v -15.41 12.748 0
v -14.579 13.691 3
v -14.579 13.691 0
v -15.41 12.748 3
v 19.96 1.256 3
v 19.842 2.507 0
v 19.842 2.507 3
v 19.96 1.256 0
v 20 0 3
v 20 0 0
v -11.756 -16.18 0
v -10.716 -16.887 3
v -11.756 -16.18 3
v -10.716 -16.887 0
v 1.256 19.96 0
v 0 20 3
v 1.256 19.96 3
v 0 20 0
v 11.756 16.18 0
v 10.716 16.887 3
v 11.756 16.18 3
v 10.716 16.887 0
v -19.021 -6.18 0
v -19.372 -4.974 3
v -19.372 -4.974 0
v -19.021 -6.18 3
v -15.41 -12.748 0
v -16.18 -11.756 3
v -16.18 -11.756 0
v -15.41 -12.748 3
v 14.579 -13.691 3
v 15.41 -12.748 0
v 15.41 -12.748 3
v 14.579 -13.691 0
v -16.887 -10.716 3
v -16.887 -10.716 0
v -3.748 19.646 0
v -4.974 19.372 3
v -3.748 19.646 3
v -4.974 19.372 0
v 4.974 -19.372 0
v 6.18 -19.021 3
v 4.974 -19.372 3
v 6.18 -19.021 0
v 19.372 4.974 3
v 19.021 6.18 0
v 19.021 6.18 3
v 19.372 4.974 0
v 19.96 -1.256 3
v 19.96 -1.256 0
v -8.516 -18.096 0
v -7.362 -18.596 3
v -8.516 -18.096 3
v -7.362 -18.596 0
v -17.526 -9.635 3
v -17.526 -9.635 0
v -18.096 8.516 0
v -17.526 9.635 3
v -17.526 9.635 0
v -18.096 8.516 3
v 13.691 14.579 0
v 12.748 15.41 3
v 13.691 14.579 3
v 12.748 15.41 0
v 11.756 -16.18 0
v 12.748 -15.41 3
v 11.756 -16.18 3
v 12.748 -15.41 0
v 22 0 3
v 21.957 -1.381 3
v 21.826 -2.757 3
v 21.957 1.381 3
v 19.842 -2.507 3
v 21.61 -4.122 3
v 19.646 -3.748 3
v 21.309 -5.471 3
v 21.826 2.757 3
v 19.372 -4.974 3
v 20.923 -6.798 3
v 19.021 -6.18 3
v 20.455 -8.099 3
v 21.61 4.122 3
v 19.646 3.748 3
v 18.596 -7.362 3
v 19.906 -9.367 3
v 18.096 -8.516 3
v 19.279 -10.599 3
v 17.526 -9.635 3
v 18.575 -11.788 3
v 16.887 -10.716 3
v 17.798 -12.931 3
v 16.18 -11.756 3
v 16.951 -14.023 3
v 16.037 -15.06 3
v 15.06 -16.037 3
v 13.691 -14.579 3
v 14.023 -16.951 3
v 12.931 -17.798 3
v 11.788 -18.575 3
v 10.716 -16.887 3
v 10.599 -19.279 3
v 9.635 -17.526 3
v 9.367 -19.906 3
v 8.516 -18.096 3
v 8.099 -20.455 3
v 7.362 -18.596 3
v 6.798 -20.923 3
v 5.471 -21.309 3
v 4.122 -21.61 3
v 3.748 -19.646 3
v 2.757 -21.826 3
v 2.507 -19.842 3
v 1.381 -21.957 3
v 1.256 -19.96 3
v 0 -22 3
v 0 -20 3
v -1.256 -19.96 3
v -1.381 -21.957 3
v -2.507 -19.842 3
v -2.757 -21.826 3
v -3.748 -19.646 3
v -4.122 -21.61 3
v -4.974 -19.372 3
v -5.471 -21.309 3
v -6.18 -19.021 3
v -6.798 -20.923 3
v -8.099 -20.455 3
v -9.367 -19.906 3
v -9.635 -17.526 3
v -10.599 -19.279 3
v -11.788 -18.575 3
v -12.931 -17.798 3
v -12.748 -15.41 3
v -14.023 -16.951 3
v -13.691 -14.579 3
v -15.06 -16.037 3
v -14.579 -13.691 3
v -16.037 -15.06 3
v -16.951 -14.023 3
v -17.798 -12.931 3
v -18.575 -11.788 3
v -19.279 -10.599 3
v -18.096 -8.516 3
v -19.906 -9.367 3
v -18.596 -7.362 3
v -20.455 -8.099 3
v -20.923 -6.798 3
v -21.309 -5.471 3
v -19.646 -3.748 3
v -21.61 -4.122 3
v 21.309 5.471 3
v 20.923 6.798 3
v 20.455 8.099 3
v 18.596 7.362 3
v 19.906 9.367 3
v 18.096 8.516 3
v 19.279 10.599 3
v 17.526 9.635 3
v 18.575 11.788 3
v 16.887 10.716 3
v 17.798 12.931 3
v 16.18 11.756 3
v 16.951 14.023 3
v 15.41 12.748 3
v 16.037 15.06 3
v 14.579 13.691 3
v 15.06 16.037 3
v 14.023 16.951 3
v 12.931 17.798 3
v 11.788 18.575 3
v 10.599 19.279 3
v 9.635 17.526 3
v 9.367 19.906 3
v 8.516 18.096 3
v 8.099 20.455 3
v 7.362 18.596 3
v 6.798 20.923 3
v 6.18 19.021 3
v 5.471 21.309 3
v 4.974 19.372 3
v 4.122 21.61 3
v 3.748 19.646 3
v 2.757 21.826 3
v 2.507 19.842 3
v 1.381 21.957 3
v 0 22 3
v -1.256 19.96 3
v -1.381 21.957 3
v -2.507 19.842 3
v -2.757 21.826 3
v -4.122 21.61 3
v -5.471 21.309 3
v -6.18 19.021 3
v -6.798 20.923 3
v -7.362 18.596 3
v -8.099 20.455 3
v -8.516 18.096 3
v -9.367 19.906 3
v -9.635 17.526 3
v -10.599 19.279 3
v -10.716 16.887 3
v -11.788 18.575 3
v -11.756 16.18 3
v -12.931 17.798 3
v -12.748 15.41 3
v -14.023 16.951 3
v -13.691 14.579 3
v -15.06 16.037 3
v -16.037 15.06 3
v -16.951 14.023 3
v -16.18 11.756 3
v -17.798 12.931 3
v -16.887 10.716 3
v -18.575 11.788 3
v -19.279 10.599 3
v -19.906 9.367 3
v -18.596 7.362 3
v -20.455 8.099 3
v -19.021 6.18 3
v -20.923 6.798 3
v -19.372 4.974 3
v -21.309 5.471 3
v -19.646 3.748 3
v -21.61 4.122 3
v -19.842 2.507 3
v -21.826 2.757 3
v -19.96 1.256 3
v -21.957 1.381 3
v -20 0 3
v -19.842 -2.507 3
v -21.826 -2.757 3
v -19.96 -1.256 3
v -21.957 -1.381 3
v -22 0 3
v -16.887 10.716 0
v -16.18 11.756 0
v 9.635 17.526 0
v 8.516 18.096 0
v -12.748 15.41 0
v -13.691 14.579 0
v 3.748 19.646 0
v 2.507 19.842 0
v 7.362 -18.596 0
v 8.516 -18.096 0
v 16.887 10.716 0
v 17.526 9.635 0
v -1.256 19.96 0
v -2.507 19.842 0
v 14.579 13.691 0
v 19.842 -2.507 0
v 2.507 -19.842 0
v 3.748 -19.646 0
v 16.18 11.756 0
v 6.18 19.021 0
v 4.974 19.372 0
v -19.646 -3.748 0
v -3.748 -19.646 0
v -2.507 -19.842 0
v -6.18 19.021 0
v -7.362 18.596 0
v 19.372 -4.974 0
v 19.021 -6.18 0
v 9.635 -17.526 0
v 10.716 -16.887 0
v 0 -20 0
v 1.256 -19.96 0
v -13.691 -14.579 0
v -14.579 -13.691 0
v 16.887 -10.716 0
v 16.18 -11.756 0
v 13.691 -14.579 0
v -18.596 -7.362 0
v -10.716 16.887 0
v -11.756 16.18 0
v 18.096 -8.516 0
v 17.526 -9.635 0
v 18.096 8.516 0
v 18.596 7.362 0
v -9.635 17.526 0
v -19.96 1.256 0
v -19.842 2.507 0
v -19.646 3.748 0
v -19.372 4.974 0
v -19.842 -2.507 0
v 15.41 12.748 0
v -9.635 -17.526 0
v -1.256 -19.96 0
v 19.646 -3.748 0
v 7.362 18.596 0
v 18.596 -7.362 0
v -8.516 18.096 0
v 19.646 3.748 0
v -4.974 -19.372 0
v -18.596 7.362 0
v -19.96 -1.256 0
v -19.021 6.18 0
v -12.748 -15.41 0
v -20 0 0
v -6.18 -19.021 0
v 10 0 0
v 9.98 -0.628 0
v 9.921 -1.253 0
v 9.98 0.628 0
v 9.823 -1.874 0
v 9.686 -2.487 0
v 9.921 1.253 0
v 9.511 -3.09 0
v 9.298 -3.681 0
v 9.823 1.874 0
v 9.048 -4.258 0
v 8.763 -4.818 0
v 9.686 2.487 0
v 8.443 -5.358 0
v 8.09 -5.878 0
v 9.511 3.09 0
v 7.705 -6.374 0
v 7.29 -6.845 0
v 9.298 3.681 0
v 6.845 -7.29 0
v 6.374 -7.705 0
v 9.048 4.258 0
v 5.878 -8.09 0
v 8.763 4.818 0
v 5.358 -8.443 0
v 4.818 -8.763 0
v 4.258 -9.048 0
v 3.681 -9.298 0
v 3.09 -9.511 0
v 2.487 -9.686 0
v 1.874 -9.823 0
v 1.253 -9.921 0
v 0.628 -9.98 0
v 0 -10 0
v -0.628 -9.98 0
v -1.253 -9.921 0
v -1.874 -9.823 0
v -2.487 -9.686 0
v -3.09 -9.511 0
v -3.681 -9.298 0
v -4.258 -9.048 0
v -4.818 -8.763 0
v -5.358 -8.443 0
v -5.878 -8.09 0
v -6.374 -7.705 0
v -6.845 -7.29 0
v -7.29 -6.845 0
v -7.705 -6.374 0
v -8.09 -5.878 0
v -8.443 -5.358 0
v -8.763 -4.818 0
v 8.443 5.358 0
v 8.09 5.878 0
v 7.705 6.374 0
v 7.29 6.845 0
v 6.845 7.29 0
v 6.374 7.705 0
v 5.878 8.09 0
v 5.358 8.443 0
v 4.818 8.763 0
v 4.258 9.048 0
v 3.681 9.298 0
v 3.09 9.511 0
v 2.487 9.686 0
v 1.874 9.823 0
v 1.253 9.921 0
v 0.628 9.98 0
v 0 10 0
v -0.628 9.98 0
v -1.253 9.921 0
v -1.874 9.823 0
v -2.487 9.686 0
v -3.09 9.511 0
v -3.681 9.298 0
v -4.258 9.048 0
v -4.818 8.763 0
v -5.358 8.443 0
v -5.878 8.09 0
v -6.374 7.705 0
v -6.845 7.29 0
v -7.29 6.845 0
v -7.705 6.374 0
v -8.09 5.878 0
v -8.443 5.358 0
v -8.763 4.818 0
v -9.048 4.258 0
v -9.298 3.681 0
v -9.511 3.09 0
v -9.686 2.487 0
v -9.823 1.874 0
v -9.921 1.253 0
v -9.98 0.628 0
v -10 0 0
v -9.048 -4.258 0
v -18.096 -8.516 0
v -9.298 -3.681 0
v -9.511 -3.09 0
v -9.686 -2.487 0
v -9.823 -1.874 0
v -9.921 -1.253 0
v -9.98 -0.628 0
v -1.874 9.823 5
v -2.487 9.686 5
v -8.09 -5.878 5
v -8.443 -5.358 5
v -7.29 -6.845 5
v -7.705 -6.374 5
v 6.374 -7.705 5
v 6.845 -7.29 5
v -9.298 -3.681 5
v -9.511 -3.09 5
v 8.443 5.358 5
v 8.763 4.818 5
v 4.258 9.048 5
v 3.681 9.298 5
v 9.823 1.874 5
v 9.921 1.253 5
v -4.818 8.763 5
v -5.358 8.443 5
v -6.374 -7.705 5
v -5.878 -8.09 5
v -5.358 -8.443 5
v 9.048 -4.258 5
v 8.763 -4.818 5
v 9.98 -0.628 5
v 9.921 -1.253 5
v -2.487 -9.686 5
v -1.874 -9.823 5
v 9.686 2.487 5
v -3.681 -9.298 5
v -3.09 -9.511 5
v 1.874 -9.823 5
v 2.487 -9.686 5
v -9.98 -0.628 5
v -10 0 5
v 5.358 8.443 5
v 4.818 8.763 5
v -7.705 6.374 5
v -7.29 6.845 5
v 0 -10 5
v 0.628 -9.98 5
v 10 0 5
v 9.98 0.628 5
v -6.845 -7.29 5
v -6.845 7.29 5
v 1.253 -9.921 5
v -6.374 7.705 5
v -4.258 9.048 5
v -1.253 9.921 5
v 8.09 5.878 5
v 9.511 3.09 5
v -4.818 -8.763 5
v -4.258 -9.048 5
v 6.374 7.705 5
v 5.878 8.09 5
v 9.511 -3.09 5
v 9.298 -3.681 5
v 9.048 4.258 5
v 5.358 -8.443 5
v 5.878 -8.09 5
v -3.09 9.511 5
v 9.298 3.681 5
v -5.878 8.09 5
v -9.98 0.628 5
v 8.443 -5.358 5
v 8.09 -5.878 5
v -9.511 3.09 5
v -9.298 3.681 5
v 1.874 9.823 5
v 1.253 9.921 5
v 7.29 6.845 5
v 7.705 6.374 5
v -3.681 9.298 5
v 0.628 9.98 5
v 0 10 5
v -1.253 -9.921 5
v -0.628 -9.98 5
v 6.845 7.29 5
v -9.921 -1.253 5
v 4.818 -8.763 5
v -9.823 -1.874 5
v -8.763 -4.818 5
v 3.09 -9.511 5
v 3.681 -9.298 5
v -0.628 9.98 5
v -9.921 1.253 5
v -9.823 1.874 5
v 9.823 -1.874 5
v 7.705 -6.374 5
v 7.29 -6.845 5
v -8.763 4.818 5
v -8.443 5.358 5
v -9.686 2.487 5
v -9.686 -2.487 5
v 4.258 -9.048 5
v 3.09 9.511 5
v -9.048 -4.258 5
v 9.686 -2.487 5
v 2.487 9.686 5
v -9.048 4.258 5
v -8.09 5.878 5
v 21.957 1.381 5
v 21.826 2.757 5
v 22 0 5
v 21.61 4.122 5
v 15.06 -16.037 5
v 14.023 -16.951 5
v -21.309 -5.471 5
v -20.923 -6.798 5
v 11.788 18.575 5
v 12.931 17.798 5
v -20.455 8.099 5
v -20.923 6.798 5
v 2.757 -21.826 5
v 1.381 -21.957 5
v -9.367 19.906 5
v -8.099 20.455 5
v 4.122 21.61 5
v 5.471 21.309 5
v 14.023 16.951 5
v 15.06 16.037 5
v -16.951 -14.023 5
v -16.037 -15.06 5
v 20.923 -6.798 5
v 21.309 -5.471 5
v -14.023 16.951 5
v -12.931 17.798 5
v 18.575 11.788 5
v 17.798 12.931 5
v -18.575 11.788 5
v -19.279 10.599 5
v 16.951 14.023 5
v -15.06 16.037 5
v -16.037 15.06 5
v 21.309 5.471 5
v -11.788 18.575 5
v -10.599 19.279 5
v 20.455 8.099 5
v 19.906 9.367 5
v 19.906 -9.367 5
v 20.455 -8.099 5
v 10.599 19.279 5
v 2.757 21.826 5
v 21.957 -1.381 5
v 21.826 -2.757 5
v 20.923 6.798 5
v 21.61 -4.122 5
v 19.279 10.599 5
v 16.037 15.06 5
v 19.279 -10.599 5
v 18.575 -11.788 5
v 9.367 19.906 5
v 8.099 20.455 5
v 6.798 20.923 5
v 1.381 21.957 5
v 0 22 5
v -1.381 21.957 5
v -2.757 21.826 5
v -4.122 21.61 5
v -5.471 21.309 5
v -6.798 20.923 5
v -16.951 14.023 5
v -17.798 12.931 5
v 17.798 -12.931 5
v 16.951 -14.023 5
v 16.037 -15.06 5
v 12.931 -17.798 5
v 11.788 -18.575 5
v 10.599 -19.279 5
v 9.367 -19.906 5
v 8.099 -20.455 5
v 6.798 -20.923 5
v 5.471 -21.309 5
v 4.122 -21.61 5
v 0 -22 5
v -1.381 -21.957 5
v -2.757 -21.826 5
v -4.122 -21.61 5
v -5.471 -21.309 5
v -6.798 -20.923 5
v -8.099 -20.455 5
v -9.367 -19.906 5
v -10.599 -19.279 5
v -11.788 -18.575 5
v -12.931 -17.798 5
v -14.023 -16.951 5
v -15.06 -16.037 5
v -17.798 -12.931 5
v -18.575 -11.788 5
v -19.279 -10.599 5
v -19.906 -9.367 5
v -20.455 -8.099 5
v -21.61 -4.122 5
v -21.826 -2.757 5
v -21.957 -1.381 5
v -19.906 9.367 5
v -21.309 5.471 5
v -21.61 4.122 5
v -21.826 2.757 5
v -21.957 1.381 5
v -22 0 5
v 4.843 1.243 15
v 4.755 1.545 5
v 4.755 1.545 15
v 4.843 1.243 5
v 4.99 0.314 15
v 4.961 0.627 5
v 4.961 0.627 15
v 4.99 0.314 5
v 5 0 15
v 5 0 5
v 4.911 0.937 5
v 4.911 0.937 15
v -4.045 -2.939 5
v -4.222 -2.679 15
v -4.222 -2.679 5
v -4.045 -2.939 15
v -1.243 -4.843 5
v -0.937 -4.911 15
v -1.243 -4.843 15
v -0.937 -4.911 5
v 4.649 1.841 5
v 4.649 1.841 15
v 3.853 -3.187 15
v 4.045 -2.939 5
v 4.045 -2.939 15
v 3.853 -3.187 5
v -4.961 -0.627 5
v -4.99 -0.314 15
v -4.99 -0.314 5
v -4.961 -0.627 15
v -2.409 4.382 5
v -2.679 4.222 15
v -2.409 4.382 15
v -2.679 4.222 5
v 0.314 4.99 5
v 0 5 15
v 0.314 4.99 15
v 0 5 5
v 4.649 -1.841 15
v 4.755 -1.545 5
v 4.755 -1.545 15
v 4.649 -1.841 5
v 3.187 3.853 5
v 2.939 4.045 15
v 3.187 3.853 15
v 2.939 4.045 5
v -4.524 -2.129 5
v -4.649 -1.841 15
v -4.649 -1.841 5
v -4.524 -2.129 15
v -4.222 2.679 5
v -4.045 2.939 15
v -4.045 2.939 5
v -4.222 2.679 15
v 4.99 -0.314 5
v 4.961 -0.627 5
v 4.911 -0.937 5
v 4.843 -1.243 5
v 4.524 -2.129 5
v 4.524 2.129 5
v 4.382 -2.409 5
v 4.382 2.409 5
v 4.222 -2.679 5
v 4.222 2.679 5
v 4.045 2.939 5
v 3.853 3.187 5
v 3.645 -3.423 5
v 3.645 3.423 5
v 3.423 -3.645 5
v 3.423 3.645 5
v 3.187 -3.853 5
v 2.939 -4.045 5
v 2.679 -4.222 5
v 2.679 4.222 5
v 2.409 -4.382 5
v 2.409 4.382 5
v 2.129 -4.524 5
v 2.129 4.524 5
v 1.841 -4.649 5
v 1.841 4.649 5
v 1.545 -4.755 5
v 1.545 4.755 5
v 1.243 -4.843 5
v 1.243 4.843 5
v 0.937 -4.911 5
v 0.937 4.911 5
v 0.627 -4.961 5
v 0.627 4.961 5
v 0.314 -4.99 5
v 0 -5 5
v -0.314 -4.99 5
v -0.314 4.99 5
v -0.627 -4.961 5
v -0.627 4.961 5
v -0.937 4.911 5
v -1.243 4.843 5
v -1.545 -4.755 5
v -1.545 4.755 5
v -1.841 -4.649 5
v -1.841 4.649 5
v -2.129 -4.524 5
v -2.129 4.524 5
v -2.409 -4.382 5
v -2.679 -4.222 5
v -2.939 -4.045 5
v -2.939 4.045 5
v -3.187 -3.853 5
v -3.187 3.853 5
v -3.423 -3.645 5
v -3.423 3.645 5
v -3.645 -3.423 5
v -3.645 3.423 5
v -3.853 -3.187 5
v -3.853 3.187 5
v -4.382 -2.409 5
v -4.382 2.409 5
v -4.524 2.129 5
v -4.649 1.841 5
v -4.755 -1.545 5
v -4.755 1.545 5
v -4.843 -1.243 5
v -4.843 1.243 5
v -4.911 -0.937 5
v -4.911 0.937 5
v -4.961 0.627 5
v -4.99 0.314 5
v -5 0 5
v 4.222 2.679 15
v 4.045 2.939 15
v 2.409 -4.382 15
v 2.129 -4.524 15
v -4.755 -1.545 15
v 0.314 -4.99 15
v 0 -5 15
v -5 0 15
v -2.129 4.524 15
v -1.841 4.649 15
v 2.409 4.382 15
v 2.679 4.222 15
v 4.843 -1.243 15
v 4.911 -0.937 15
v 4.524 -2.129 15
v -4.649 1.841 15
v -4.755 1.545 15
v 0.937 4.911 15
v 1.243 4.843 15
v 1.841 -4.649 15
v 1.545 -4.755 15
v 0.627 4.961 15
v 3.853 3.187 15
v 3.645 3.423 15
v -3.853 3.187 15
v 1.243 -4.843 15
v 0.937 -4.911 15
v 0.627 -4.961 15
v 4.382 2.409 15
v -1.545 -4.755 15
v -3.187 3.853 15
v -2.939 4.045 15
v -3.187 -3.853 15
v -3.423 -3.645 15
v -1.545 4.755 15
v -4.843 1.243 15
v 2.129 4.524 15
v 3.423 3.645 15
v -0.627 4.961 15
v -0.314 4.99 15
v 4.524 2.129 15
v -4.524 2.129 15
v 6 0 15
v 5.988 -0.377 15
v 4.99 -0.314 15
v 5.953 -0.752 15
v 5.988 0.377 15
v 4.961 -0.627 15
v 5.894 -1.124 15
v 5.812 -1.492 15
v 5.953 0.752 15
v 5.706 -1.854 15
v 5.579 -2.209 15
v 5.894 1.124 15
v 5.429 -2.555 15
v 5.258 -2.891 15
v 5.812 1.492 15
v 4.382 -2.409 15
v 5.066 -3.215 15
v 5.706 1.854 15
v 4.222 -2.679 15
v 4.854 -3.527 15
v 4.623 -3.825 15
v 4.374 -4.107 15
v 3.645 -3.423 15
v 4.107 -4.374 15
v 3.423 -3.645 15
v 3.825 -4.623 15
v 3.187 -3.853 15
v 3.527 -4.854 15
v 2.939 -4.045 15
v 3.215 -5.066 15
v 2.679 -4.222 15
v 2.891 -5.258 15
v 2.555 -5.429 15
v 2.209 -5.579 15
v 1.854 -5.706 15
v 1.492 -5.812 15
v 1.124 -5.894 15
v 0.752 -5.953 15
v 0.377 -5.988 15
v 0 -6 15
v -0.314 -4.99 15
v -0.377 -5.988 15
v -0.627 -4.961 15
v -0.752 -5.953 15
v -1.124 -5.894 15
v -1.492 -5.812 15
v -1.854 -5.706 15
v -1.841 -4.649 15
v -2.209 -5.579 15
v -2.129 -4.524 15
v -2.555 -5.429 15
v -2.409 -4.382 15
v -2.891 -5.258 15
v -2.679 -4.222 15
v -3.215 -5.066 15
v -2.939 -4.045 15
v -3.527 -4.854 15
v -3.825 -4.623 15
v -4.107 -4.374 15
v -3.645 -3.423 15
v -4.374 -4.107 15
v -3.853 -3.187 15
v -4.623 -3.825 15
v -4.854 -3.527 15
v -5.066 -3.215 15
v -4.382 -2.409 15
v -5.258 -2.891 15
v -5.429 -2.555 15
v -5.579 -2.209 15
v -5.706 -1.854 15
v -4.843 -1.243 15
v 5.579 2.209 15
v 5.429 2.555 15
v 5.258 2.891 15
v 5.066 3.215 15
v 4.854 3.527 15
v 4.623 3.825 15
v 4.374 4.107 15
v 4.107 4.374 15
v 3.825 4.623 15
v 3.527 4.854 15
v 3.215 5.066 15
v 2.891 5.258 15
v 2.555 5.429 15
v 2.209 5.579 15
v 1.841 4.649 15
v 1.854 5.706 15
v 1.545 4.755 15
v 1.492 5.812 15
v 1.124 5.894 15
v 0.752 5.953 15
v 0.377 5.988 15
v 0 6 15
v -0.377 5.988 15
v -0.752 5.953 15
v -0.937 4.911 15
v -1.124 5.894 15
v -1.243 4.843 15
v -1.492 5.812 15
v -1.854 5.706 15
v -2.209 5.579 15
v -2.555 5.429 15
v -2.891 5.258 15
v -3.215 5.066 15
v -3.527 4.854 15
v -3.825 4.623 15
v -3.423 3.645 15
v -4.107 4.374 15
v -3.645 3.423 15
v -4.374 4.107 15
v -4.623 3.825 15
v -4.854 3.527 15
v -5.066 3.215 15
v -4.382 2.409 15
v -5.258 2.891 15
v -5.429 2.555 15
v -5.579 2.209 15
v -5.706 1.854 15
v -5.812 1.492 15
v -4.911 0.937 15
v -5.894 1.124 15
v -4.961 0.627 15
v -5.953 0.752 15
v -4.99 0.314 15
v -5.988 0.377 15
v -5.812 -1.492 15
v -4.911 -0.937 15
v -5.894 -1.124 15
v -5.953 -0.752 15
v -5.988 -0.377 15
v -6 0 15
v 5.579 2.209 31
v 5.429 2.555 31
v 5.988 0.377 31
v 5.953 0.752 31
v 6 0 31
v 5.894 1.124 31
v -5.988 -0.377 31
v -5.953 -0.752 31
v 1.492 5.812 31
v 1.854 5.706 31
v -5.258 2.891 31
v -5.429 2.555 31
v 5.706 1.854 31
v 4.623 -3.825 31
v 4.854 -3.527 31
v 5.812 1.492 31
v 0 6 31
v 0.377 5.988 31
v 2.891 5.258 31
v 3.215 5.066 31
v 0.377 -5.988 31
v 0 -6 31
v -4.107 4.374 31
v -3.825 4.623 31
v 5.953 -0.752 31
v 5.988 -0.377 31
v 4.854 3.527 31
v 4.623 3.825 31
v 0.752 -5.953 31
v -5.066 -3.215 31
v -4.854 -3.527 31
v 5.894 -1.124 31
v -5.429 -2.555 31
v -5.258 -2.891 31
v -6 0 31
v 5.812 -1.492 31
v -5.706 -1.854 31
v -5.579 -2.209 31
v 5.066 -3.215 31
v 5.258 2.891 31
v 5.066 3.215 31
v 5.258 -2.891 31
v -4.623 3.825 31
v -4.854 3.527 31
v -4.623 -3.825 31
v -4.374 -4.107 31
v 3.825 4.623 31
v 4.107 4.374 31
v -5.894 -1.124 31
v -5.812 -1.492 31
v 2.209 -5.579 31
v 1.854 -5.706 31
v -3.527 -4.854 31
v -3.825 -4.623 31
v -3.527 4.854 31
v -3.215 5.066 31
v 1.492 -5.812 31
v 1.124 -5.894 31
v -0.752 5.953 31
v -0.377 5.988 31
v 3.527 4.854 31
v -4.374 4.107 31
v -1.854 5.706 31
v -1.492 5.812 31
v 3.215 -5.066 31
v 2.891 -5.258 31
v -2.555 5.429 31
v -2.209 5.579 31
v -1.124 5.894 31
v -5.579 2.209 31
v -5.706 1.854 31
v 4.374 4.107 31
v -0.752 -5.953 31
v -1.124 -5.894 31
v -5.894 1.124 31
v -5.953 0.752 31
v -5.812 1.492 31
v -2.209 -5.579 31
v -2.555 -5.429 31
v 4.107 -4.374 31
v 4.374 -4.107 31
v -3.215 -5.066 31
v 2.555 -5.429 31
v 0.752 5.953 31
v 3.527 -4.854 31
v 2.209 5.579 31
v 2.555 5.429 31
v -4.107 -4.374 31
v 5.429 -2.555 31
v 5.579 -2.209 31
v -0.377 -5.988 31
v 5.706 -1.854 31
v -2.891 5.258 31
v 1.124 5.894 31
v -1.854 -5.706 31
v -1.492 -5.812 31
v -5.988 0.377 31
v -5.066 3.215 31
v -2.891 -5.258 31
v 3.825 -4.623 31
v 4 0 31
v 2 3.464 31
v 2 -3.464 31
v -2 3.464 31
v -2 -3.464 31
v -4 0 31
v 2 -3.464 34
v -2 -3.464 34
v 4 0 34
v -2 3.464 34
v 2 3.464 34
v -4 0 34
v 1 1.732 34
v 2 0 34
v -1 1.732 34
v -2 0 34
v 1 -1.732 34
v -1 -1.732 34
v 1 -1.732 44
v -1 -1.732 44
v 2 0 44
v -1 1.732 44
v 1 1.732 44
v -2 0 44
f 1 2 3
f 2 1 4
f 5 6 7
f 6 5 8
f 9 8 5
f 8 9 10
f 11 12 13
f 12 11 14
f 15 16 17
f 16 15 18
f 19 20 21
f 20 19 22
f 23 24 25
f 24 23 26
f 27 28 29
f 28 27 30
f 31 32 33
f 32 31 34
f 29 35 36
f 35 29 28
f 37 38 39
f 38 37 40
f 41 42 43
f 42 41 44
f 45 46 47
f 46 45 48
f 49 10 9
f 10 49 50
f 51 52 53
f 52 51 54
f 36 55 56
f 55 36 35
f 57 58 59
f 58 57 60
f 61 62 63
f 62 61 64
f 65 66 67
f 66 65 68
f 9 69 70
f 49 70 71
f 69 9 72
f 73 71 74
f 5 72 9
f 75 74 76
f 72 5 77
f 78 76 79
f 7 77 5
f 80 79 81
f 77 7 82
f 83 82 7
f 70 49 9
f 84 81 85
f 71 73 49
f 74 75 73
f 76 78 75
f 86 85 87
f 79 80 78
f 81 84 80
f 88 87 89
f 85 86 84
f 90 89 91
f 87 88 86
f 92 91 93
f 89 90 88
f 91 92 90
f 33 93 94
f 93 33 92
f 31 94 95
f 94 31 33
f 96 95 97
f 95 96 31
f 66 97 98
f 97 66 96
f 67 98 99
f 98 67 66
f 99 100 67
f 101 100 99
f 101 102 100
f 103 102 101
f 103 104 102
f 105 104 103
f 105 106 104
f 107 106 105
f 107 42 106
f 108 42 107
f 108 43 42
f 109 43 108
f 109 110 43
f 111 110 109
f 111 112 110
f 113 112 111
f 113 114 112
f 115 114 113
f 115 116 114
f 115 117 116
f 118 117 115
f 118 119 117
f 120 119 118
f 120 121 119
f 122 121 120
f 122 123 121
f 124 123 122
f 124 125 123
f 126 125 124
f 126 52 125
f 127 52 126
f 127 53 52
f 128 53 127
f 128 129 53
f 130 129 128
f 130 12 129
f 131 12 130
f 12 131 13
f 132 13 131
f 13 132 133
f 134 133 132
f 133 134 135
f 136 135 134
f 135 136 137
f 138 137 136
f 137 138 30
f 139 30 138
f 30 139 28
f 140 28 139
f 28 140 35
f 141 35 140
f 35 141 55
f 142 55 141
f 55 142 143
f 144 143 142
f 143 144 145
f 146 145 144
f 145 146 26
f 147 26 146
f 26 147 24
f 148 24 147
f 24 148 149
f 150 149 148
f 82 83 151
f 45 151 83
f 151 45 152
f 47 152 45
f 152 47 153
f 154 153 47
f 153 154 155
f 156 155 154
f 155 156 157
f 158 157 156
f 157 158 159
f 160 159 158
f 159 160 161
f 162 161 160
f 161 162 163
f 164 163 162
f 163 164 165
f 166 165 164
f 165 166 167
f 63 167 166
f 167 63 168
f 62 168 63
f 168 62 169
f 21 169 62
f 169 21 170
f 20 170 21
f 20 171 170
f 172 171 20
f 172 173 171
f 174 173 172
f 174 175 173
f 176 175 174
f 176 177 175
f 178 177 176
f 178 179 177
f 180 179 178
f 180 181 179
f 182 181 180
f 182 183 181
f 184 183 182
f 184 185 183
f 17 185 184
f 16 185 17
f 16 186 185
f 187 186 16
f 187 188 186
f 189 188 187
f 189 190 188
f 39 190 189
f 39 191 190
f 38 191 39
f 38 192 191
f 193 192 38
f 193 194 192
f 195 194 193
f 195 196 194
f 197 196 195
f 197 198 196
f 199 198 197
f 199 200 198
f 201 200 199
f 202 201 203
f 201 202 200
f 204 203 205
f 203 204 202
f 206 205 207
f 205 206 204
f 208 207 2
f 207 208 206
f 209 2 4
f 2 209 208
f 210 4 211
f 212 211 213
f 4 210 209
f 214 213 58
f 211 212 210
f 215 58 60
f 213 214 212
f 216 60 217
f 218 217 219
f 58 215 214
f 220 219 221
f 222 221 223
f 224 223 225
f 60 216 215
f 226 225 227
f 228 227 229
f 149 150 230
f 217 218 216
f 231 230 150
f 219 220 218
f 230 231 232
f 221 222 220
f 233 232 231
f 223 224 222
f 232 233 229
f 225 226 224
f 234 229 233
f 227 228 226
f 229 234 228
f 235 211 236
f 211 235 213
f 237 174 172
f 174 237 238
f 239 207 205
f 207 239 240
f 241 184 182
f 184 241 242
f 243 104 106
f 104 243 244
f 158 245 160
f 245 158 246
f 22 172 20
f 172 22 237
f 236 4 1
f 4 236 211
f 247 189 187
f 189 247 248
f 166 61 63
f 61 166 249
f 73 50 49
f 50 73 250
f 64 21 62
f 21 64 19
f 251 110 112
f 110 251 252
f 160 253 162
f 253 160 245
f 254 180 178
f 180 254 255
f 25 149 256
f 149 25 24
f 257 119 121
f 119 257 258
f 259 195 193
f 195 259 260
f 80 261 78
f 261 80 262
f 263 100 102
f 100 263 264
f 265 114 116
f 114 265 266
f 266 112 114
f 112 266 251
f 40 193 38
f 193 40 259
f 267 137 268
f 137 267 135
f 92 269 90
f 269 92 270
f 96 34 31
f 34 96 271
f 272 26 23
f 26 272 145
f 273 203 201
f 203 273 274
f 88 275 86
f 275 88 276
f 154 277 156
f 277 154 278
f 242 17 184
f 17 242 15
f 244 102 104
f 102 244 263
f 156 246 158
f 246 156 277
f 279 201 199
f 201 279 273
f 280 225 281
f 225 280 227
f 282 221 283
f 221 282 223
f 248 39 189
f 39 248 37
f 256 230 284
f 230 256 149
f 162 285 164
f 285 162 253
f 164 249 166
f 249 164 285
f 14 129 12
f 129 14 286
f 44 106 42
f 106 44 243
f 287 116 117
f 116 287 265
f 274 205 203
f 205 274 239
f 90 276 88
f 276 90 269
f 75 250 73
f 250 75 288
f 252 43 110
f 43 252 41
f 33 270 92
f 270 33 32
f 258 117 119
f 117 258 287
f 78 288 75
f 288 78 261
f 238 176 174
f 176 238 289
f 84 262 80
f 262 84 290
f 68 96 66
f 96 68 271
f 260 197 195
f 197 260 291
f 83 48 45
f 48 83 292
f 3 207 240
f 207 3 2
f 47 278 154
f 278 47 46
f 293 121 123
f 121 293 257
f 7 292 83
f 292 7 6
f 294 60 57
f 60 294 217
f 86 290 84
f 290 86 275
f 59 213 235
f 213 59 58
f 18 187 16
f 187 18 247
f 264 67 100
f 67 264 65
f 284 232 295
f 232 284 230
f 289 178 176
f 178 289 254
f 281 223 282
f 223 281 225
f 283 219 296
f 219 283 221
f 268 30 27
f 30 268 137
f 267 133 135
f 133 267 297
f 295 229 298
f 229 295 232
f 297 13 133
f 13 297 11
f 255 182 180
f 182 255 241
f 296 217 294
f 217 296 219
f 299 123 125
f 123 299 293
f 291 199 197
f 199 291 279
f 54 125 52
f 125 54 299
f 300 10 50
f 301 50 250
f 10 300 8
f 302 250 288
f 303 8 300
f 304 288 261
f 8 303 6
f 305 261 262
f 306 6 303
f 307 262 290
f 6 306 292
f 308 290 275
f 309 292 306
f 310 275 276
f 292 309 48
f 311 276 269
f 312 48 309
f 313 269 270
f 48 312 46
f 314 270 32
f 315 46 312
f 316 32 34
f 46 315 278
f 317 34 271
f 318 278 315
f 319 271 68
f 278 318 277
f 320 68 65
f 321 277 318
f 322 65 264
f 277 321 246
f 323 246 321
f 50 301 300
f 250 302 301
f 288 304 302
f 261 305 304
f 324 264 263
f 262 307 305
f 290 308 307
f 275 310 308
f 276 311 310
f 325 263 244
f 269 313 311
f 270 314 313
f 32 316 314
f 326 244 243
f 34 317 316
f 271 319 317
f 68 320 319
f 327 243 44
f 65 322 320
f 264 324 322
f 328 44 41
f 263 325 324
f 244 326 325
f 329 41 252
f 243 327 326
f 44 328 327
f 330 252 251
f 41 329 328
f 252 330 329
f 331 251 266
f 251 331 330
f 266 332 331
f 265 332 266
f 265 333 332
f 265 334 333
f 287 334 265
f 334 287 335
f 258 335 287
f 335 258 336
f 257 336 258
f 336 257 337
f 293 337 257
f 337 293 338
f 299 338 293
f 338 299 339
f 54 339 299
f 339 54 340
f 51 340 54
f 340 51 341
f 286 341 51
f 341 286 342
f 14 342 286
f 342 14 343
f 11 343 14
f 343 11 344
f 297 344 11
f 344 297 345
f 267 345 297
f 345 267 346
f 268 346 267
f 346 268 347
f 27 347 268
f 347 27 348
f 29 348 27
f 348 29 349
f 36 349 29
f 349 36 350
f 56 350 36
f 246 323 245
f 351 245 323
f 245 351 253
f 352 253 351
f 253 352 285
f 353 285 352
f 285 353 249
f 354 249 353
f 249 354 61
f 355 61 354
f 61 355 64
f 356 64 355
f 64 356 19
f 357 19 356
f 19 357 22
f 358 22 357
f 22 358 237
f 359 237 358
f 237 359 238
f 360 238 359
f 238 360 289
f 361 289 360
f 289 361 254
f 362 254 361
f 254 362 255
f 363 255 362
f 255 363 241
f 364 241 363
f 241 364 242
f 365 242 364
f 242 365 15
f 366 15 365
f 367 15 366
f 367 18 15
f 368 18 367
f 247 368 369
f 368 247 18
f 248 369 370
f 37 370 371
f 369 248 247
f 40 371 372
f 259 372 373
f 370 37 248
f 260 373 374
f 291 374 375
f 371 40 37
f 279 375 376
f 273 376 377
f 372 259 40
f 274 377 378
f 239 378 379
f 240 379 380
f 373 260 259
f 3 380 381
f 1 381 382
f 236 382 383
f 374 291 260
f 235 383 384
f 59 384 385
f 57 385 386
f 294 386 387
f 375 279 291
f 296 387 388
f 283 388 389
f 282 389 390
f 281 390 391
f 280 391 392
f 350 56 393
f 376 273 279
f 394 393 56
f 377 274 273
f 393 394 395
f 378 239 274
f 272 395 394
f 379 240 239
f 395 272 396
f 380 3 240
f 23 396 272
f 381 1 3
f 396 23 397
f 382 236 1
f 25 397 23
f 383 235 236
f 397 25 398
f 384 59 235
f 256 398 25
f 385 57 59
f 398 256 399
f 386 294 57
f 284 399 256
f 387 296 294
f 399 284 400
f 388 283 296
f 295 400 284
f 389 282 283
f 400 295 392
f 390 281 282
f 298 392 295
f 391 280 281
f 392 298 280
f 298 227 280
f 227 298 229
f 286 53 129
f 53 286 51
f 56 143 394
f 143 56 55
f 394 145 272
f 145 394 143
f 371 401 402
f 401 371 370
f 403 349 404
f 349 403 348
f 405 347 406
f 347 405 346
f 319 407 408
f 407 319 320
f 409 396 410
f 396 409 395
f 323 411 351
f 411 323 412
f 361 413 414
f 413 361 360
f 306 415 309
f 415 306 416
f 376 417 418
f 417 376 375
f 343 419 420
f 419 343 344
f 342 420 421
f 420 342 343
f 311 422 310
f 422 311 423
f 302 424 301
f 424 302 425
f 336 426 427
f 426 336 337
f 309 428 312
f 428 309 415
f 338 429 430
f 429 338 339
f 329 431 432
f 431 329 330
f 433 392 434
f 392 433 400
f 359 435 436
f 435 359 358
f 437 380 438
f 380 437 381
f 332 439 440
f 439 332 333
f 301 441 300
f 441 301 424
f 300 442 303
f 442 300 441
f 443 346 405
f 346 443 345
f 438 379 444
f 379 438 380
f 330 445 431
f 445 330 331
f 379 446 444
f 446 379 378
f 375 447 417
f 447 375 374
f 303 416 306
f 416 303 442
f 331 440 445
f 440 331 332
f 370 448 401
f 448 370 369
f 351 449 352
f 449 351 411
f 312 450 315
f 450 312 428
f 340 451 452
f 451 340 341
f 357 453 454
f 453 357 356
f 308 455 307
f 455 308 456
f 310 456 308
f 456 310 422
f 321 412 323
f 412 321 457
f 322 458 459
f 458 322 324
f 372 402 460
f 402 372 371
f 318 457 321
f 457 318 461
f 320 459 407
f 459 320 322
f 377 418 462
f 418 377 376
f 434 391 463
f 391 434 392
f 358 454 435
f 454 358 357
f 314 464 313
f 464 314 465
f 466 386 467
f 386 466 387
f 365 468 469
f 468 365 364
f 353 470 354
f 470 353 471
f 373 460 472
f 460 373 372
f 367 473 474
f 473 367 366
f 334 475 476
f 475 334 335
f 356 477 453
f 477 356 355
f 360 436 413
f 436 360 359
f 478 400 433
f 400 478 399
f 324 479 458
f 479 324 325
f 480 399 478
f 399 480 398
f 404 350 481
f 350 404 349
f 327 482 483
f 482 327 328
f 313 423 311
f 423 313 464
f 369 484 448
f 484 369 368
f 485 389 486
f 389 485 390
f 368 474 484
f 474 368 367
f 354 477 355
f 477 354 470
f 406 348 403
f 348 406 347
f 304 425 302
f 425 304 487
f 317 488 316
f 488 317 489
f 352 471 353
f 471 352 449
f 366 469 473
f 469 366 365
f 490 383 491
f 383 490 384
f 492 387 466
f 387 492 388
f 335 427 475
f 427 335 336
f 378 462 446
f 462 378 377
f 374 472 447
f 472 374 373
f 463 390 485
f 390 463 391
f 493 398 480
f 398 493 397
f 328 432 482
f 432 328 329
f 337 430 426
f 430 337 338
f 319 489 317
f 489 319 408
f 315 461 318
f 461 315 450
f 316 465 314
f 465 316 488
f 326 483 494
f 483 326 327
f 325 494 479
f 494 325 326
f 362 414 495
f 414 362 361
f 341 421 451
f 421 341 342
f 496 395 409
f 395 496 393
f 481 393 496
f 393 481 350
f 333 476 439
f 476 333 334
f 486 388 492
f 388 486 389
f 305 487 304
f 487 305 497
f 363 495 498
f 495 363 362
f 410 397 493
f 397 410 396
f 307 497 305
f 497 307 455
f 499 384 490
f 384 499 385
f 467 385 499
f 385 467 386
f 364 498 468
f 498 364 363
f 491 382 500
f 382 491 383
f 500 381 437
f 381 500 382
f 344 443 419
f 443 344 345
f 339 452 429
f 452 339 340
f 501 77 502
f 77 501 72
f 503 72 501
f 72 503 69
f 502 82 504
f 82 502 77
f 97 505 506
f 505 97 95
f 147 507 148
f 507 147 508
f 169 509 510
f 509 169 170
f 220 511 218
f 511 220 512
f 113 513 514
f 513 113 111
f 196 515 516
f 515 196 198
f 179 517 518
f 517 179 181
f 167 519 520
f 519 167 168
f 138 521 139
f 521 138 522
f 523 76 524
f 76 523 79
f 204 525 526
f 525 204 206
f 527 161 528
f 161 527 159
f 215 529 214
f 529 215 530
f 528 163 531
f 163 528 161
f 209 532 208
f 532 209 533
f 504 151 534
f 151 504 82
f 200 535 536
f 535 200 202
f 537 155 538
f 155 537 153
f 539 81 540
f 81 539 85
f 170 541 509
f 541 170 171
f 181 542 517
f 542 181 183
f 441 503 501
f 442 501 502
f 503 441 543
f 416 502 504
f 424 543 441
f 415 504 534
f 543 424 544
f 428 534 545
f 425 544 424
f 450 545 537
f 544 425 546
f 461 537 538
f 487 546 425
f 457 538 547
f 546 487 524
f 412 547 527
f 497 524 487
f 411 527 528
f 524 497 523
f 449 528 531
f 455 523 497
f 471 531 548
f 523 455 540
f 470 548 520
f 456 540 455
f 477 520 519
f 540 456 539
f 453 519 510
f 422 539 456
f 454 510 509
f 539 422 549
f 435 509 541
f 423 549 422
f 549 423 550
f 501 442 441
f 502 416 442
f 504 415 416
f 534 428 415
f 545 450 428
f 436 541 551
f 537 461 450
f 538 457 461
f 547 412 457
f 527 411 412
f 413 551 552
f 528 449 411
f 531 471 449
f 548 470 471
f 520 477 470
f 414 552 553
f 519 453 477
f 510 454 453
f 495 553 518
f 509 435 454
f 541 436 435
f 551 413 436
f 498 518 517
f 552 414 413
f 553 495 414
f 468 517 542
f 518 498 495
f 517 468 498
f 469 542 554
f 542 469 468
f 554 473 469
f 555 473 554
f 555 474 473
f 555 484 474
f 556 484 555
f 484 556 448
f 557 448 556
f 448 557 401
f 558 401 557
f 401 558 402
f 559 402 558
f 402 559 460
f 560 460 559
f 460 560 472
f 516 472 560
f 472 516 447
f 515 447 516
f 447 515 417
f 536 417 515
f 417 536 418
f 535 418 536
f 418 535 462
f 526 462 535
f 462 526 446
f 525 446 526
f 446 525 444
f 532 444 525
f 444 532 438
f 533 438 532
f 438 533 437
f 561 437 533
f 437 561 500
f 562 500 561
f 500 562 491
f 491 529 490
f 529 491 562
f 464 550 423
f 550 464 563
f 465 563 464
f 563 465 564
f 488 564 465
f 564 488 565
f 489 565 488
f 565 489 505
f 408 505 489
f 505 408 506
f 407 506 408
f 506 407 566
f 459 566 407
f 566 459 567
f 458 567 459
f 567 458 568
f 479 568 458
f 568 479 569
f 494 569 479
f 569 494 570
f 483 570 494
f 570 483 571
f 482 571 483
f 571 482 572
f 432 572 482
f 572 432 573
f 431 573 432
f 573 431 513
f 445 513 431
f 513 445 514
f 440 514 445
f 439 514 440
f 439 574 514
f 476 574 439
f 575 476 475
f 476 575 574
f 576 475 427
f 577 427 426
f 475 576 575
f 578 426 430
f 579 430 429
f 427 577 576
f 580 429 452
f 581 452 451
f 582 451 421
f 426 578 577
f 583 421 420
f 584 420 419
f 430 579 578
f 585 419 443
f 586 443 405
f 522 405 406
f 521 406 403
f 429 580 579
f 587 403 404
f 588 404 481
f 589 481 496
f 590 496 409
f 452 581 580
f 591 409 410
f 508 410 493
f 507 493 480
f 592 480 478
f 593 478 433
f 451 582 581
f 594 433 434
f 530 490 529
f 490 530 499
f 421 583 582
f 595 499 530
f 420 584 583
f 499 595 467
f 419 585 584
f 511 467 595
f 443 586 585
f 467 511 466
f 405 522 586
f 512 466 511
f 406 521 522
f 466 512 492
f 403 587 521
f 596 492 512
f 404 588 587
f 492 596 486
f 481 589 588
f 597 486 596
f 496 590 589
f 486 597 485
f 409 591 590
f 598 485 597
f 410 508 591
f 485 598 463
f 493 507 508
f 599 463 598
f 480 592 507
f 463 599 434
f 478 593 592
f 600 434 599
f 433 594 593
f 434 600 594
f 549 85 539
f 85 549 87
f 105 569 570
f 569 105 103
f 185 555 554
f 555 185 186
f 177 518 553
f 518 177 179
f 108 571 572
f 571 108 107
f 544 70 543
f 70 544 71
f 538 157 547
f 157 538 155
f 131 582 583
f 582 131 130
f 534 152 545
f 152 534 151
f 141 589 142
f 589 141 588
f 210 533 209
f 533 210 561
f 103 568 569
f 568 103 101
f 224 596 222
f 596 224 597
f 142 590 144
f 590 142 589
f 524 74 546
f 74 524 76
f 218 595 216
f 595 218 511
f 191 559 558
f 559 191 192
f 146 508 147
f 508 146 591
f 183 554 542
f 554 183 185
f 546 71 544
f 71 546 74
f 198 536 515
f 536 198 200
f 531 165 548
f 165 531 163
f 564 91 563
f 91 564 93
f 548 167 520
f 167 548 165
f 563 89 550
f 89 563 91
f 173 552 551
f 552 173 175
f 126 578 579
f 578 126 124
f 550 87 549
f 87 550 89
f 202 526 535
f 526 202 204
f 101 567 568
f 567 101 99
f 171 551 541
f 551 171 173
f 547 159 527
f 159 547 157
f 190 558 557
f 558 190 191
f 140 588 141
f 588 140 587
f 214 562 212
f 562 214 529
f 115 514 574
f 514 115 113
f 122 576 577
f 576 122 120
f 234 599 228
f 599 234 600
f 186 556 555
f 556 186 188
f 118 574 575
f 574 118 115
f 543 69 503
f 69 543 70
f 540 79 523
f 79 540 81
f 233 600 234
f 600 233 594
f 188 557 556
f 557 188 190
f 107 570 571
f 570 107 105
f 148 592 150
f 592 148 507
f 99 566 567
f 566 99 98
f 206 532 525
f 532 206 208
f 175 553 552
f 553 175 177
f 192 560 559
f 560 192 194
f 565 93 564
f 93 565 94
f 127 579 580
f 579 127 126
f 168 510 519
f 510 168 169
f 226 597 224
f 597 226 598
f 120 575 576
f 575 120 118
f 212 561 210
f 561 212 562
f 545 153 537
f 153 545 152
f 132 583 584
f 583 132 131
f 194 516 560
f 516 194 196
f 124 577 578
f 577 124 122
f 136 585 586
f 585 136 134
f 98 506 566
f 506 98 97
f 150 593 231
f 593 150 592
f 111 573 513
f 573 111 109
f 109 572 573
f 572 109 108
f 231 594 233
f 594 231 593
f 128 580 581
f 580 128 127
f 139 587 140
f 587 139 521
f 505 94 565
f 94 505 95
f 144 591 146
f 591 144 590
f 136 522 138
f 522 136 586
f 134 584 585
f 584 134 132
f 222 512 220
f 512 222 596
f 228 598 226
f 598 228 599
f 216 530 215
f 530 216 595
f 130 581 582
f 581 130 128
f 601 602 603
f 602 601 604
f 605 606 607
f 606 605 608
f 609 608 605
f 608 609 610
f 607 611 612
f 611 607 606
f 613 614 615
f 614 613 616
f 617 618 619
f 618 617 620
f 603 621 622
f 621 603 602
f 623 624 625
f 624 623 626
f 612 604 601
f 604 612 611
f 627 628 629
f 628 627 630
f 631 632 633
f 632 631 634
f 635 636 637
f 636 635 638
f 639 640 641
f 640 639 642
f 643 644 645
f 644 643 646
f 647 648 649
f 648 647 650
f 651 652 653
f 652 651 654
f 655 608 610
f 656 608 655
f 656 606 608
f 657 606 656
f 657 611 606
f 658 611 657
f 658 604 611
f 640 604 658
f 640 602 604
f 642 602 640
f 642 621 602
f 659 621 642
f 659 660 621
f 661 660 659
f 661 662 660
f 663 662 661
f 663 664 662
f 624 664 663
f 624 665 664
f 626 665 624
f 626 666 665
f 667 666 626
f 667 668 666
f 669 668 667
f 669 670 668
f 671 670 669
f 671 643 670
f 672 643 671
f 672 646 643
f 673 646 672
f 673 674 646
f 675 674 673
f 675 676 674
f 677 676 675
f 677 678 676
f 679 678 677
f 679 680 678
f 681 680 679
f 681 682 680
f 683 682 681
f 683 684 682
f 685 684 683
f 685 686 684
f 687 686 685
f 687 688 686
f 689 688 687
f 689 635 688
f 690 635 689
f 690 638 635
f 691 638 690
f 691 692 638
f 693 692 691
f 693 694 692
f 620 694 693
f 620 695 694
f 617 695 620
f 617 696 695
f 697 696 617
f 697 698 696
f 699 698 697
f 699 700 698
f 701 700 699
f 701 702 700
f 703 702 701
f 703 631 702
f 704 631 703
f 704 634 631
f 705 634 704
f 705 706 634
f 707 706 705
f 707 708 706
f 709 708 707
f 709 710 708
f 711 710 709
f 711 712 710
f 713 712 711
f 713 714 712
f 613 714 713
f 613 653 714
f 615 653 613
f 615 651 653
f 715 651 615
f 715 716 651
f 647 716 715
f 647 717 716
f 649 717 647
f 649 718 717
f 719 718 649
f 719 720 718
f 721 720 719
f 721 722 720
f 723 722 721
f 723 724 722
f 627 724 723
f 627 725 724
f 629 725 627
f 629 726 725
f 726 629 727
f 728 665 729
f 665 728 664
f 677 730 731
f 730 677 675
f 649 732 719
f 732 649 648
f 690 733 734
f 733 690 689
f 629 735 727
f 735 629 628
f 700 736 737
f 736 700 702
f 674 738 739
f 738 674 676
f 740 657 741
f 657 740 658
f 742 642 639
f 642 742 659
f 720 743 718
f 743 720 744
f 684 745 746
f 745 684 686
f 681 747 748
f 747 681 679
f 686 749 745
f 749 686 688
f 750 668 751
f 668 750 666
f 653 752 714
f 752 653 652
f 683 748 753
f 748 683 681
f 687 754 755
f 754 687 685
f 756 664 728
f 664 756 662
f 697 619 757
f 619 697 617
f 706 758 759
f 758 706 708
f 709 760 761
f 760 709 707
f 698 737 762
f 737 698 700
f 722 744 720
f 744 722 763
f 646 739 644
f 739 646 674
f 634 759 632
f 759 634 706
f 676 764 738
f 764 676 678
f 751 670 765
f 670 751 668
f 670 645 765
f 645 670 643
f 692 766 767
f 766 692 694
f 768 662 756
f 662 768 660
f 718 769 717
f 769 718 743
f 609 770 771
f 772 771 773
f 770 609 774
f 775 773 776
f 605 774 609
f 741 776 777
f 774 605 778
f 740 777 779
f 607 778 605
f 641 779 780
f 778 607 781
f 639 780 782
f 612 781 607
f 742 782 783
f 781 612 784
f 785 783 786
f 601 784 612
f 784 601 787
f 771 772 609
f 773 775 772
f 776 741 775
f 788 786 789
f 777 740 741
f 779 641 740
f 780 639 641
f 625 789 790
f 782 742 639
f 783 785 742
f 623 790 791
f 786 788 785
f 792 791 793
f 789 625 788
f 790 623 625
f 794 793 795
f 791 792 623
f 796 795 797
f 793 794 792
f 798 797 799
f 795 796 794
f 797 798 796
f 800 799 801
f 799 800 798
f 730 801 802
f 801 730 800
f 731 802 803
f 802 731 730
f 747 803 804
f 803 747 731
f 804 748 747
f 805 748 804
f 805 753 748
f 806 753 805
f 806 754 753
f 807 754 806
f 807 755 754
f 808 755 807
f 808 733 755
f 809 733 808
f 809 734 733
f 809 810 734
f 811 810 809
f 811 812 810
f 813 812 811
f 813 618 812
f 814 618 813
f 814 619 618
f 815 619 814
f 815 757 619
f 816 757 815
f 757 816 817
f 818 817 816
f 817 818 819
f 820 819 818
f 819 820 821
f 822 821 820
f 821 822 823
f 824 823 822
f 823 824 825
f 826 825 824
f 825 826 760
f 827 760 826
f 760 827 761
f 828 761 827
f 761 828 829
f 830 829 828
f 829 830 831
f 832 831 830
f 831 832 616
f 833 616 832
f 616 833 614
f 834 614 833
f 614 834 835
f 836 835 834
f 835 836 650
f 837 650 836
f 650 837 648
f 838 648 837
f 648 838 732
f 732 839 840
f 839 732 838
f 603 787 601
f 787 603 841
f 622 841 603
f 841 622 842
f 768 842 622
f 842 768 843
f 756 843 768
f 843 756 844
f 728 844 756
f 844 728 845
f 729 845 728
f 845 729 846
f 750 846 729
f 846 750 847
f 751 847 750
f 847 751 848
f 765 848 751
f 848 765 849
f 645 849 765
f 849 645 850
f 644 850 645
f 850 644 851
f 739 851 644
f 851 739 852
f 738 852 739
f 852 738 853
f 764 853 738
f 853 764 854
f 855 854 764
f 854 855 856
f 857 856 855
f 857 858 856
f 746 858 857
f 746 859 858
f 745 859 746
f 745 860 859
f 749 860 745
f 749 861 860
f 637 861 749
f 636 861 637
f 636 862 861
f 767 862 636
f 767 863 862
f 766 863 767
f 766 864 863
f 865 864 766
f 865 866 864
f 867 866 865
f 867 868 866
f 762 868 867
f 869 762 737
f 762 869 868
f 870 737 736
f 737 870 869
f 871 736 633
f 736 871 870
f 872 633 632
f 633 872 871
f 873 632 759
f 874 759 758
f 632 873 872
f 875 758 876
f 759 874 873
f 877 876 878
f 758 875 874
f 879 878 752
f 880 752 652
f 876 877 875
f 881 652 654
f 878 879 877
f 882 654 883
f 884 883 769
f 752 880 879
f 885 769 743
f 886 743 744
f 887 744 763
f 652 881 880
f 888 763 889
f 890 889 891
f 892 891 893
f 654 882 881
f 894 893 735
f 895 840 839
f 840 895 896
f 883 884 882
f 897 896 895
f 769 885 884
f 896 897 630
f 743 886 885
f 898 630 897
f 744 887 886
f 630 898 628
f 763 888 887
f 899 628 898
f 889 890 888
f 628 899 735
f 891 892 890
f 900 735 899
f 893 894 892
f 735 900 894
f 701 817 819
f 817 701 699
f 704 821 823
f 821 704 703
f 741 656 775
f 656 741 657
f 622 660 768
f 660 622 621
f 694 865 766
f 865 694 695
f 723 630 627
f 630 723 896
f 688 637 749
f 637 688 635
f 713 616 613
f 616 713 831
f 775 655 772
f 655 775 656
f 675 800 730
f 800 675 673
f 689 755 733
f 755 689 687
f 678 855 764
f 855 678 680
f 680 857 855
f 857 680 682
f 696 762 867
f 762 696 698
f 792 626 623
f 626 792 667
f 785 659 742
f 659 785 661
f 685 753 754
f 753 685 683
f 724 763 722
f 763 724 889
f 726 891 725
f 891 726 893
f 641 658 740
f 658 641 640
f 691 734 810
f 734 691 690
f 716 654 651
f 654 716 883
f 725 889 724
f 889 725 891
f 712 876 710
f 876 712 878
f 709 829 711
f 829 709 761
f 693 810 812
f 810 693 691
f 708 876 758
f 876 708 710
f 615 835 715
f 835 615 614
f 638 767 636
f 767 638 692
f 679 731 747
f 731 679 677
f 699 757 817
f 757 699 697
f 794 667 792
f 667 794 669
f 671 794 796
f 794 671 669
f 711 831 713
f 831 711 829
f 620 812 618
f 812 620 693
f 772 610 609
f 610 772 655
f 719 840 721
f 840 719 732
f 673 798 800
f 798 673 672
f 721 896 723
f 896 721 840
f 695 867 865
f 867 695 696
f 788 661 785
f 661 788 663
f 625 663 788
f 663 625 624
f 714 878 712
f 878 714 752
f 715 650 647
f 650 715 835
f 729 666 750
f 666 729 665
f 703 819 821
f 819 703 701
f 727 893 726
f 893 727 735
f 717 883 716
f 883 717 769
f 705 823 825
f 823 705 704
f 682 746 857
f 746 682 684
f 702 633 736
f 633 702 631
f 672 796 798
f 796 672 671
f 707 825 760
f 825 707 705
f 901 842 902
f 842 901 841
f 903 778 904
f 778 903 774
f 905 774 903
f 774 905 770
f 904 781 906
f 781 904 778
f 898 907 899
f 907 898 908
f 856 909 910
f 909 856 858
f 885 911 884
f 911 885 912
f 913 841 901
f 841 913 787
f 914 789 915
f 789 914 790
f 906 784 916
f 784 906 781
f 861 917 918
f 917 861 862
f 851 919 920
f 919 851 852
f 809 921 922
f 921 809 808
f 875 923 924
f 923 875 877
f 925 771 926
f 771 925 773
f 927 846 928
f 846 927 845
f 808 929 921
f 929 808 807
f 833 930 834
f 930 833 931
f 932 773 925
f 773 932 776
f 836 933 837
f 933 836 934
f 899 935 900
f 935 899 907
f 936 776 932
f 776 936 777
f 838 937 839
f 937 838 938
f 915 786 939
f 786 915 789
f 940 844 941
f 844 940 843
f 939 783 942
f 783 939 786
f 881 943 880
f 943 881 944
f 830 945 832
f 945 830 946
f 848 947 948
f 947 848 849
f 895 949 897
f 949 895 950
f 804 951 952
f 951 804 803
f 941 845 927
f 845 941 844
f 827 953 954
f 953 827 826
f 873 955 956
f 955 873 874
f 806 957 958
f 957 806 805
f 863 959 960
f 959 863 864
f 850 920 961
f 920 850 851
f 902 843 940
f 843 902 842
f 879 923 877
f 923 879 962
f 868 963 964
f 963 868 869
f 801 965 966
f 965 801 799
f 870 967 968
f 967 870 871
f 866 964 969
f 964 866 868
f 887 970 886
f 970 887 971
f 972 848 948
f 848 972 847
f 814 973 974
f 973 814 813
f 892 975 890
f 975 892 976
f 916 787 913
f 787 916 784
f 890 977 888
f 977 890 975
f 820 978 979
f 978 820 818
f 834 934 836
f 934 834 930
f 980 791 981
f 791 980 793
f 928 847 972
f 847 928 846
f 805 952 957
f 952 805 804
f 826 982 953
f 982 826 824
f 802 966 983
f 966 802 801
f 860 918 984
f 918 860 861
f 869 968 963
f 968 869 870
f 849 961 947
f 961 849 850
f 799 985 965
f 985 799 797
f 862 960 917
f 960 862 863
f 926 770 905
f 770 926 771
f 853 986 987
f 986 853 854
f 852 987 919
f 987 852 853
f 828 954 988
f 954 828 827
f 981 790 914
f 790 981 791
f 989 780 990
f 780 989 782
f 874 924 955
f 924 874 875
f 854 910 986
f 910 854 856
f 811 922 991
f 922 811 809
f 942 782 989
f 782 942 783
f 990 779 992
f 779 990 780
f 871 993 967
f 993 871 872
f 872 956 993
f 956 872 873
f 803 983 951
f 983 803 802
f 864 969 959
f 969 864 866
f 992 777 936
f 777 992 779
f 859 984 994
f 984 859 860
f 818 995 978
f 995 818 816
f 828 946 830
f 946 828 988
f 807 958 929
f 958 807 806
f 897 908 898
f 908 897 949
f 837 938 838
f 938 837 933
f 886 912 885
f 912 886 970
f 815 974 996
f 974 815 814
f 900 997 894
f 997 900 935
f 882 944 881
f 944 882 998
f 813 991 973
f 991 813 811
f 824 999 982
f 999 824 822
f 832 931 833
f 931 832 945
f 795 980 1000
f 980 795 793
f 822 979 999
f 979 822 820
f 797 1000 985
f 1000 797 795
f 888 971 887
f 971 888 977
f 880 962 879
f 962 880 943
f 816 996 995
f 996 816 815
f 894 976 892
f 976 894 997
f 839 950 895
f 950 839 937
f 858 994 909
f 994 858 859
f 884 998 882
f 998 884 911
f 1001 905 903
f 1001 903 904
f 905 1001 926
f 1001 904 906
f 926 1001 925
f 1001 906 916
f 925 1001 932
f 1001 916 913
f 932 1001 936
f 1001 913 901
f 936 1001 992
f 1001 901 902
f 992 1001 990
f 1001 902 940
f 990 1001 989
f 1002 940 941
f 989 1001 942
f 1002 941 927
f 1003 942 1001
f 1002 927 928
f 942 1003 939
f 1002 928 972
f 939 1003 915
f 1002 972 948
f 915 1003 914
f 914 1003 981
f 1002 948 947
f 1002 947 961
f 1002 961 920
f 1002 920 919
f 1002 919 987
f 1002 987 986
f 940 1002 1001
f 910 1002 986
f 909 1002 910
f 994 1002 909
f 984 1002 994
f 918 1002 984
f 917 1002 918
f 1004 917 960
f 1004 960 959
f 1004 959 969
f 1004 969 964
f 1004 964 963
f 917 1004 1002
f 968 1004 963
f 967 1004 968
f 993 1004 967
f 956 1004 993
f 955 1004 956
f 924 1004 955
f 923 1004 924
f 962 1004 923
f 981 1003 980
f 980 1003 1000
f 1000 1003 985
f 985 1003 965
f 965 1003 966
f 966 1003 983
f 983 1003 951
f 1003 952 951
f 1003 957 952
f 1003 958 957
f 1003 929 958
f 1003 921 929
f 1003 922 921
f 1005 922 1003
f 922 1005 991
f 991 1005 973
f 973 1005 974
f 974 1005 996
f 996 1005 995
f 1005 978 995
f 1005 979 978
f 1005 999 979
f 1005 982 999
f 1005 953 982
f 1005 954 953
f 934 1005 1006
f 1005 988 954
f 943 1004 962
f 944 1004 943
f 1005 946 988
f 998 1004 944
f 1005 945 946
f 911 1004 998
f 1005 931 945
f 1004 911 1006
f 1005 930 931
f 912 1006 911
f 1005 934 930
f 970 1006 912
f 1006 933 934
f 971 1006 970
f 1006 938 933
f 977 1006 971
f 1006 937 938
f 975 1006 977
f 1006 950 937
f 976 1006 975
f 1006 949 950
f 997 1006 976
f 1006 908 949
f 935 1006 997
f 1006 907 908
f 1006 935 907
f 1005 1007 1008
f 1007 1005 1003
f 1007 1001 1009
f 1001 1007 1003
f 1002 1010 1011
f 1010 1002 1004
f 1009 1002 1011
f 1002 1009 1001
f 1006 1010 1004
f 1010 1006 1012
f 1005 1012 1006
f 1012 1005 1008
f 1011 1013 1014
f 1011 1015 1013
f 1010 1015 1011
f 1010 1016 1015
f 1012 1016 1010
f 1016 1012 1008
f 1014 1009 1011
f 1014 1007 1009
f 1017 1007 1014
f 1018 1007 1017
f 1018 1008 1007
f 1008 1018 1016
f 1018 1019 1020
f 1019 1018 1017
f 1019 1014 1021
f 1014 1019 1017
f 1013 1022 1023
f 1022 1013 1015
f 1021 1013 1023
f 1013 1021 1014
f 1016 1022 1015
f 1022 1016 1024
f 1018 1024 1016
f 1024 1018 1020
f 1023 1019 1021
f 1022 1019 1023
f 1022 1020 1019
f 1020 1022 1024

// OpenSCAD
// Parameters for the spacer_ring
module spacer_ring() {
    difference() {
        // Outer cylinder with reduced thickness
        cylinder(h = 3, r = 20, $fn = 100); // Adjusted height to match flatness
        // Inner hollow
        translate([0, 0, -1]) cylinder(h = 5, r = 10, $fn = 100); // Adjusted height to match flatness
    }
}

// Parameters for the flange_plate
module flange_plate() {
    difference() {
        // Outer cylinder for flange plate
        cylinder(h = 2, r = 22, $fn = 100); // Adjusted edge profile for smoother appearance
        // Inner hollow
        translate([0, 0, -1]) cylinder(h = 3, r = 10, $fn = 100); // Adjusted edge profile for smoother appearance
    }
}

// Parameters for the central_cylinder
module central_cylinder() {
    cylinder(h = 10, r = 5, $fn = 100); // Ensure it matches the original model
}

// Parameters for the input_cylinder
module input_cylinder() {
    cylinder(h = 8, r = 6, $fn = 100); // Ensure it matches the original model
}

// Parameters for the output_cylinder
module output_cylinder() {
    cylinder(h = 8, r = 6, $fn = 100); // Ensure it matches the original model
}

// Parameters for the nut
module nut() {
    cylinder(h = 3, r = 4, $fn = 6); // Ensure it matches the original model
}

// Parameters for the bolt
module bolt() {
    cylinder(h = 10, r = 2, $fn = 6); // Ensure it matches the original model
}

// Assemble the model
module assembly() {
    // Layer 1: Spacer Ring
    spacer_ring();
    // Layer 2: Flange Plate
    translate([0, 0, 3]) flange_plate();
    // Layer 3: Central Cylinder
    translate([0, 0, 5]) central_cylinder();
    // Layer 4: Input Cylinder
    translate([0, 0, 15]) input_cylinder();
    // Layer 5: Output Cylinder
    translate([0, 0, 23]) output_cylinder();
    // Layer 6: Nut
    translate([0, 0, 31]) nut();
    // Layer 7: Bolt
    translate([0, 0, 34]) bolt();
}

// Render the assembly
assembly();
